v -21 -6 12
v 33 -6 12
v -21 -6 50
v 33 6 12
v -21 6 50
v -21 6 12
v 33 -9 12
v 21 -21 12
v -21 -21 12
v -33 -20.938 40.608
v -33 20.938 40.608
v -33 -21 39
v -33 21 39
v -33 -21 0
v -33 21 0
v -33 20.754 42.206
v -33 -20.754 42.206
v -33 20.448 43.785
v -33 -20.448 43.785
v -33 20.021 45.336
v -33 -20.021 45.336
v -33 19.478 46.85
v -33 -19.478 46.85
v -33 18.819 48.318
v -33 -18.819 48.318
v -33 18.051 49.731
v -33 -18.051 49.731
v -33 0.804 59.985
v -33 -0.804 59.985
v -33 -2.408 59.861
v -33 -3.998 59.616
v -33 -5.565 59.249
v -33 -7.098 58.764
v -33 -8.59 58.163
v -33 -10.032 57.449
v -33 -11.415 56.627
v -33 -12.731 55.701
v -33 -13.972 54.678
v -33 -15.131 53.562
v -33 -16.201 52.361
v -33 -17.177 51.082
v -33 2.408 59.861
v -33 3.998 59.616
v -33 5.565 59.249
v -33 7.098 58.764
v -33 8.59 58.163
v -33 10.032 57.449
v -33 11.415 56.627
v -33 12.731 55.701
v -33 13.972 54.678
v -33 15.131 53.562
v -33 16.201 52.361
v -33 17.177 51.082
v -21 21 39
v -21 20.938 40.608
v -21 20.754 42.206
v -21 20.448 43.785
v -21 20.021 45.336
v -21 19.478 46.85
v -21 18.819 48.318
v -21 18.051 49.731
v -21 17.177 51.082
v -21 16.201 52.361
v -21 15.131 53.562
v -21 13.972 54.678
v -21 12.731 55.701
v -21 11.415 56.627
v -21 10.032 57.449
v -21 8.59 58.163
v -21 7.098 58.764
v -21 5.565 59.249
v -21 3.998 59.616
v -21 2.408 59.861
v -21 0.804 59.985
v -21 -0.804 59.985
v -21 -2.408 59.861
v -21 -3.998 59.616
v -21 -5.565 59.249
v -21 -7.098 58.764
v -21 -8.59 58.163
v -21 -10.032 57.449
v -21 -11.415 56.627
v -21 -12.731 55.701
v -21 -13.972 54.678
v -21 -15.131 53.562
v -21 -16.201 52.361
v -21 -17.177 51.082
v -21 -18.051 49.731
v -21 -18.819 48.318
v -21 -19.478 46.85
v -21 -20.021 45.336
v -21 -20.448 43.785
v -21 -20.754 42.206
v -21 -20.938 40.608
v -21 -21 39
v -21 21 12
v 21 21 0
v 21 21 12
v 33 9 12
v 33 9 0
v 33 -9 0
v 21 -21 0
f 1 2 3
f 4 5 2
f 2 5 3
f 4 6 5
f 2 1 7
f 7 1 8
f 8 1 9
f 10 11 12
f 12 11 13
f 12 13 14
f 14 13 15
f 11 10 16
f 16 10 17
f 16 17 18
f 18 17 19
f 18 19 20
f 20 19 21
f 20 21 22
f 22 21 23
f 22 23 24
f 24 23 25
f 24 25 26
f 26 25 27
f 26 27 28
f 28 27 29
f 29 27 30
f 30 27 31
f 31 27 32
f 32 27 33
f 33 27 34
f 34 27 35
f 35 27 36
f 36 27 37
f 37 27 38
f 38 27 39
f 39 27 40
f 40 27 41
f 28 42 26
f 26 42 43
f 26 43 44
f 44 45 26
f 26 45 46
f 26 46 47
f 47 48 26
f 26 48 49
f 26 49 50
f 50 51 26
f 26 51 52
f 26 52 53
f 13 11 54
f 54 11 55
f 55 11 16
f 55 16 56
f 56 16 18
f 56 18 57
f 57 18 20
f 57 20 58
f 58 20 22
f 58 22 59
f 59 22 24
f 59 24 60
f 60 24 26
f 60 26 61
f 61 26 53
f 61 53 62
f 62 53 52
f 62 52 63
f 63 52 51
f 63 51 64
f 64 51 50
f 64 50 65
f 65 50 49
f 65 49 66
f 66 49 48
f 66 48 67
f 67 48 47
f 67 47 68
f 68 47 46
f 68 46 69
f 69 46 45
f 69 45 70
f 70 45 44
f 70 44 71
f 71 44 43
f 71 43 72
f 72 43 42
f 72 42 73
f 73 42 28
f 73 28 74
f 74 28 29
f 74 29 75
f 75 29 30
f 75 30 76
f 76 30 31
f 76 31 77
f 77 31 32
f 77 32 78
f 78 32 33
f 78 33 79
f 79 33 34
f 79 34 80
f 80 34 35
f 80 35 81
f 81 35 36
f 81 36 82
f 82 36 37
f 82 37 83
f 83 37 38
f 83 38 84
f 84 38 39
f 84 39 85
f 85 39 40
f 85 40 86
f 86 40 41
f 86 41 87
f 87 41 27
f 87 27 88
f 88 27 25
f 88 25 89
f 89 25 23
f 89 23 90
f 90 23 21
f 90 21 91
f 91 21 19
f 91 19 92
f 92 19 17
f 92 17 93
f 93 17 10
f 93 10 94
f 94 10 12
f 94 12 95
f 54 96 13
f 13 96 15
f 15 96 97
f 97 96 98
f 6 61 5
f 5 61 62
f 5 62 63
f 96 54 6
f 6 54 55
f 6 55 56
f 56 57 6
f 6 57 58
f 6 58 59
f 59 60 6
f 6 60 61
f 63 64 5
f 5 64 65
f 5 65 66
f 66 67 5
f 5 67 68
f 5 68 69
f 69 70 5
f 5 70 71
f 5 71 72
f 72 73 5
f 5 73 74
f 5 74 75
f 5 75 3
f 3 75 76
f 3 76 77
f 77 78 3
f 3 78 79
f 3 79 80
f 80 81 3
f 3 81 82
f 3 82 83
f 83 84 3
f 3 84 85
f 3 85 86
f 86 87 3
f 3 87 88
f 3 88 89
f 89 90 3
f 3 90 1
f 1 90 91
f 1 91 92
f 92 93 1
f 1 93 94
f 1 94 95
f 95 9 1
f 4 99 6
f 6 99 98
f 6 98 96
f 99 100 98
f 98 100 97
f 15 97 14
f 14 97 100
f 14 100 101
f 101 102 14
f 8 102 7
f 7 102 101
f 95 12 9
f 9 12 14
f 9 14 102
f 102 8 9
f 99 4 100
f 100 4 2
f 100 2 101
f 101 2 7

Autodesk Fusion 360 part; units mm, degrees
sketch "Sketch1" plane through (0, 0, 0) normal (0, 0, 1) x (1, 0, 0)
  line L0 (33, -21) -> (-33, -21)
  line L1 (-33, -21) -> (-33, 21)
  line L2 (-33, 21) -> (33, 21)
  line L3 (33, 21) -> (33, -21)
  line L4 (33, -21) -> (-33, 21) construction
  line L5 (-33, -21) -> (33, 21) construction
  dimension "d1" = 66
  dimension "d2" = 42
extrude "Extrude1" add sketch "Sketch1" along normal blind 12
chamfer "Chamfer1" distance 12 angle 45 2 edges at (33, -21, 6) (33, 21, 6)
sketch "Sketch2" plane through (0, 0, 12) normal (0, 0, 1) x (-1, 0, 0)
  line L0 (-33, -9) -> (-21, -21)
  line L1 (-21, -21) -> (33, -21)
  line L2 (33, -21) -> (33, 21)
  line L3 (33, 21) -> (-21, 21)
  line L4 (-21, 21) -> (-33, 9)
  line L5 (-33, 9) -> (-33, -9)
  line L6 (33, -21) -> (21, -21)
  line L7 (21, -21) -> (21, 21)
  line L8 (21, 21) -> (33, 21)
  line L9 (33, 21) -> (33, -21)
  dimension "d6" = 12
extrude "Extrude2" add sketch "Sketch2" along normal blind 48 contours L1 L2 L3 L6 L7 L8 L9
fillet "Fillet1" radius 21 2 edges at (-27, 21, 60) (-27, -21, 60)
sketch "Sketch3" plane through (0, 0, 0) normal (0, 1, 0) x (1, 0, 0)
  line L0 (-21, -50) -> (-21, -12)
  line L1 (-21, -12) -> (33, -12)
  line L2 (33, -12) -> (-21, -50)
extrude "Extrude3" add sketch "Sketch3" along normal mid plane 12
equation "d7 = 60 mm - 12 mm"
